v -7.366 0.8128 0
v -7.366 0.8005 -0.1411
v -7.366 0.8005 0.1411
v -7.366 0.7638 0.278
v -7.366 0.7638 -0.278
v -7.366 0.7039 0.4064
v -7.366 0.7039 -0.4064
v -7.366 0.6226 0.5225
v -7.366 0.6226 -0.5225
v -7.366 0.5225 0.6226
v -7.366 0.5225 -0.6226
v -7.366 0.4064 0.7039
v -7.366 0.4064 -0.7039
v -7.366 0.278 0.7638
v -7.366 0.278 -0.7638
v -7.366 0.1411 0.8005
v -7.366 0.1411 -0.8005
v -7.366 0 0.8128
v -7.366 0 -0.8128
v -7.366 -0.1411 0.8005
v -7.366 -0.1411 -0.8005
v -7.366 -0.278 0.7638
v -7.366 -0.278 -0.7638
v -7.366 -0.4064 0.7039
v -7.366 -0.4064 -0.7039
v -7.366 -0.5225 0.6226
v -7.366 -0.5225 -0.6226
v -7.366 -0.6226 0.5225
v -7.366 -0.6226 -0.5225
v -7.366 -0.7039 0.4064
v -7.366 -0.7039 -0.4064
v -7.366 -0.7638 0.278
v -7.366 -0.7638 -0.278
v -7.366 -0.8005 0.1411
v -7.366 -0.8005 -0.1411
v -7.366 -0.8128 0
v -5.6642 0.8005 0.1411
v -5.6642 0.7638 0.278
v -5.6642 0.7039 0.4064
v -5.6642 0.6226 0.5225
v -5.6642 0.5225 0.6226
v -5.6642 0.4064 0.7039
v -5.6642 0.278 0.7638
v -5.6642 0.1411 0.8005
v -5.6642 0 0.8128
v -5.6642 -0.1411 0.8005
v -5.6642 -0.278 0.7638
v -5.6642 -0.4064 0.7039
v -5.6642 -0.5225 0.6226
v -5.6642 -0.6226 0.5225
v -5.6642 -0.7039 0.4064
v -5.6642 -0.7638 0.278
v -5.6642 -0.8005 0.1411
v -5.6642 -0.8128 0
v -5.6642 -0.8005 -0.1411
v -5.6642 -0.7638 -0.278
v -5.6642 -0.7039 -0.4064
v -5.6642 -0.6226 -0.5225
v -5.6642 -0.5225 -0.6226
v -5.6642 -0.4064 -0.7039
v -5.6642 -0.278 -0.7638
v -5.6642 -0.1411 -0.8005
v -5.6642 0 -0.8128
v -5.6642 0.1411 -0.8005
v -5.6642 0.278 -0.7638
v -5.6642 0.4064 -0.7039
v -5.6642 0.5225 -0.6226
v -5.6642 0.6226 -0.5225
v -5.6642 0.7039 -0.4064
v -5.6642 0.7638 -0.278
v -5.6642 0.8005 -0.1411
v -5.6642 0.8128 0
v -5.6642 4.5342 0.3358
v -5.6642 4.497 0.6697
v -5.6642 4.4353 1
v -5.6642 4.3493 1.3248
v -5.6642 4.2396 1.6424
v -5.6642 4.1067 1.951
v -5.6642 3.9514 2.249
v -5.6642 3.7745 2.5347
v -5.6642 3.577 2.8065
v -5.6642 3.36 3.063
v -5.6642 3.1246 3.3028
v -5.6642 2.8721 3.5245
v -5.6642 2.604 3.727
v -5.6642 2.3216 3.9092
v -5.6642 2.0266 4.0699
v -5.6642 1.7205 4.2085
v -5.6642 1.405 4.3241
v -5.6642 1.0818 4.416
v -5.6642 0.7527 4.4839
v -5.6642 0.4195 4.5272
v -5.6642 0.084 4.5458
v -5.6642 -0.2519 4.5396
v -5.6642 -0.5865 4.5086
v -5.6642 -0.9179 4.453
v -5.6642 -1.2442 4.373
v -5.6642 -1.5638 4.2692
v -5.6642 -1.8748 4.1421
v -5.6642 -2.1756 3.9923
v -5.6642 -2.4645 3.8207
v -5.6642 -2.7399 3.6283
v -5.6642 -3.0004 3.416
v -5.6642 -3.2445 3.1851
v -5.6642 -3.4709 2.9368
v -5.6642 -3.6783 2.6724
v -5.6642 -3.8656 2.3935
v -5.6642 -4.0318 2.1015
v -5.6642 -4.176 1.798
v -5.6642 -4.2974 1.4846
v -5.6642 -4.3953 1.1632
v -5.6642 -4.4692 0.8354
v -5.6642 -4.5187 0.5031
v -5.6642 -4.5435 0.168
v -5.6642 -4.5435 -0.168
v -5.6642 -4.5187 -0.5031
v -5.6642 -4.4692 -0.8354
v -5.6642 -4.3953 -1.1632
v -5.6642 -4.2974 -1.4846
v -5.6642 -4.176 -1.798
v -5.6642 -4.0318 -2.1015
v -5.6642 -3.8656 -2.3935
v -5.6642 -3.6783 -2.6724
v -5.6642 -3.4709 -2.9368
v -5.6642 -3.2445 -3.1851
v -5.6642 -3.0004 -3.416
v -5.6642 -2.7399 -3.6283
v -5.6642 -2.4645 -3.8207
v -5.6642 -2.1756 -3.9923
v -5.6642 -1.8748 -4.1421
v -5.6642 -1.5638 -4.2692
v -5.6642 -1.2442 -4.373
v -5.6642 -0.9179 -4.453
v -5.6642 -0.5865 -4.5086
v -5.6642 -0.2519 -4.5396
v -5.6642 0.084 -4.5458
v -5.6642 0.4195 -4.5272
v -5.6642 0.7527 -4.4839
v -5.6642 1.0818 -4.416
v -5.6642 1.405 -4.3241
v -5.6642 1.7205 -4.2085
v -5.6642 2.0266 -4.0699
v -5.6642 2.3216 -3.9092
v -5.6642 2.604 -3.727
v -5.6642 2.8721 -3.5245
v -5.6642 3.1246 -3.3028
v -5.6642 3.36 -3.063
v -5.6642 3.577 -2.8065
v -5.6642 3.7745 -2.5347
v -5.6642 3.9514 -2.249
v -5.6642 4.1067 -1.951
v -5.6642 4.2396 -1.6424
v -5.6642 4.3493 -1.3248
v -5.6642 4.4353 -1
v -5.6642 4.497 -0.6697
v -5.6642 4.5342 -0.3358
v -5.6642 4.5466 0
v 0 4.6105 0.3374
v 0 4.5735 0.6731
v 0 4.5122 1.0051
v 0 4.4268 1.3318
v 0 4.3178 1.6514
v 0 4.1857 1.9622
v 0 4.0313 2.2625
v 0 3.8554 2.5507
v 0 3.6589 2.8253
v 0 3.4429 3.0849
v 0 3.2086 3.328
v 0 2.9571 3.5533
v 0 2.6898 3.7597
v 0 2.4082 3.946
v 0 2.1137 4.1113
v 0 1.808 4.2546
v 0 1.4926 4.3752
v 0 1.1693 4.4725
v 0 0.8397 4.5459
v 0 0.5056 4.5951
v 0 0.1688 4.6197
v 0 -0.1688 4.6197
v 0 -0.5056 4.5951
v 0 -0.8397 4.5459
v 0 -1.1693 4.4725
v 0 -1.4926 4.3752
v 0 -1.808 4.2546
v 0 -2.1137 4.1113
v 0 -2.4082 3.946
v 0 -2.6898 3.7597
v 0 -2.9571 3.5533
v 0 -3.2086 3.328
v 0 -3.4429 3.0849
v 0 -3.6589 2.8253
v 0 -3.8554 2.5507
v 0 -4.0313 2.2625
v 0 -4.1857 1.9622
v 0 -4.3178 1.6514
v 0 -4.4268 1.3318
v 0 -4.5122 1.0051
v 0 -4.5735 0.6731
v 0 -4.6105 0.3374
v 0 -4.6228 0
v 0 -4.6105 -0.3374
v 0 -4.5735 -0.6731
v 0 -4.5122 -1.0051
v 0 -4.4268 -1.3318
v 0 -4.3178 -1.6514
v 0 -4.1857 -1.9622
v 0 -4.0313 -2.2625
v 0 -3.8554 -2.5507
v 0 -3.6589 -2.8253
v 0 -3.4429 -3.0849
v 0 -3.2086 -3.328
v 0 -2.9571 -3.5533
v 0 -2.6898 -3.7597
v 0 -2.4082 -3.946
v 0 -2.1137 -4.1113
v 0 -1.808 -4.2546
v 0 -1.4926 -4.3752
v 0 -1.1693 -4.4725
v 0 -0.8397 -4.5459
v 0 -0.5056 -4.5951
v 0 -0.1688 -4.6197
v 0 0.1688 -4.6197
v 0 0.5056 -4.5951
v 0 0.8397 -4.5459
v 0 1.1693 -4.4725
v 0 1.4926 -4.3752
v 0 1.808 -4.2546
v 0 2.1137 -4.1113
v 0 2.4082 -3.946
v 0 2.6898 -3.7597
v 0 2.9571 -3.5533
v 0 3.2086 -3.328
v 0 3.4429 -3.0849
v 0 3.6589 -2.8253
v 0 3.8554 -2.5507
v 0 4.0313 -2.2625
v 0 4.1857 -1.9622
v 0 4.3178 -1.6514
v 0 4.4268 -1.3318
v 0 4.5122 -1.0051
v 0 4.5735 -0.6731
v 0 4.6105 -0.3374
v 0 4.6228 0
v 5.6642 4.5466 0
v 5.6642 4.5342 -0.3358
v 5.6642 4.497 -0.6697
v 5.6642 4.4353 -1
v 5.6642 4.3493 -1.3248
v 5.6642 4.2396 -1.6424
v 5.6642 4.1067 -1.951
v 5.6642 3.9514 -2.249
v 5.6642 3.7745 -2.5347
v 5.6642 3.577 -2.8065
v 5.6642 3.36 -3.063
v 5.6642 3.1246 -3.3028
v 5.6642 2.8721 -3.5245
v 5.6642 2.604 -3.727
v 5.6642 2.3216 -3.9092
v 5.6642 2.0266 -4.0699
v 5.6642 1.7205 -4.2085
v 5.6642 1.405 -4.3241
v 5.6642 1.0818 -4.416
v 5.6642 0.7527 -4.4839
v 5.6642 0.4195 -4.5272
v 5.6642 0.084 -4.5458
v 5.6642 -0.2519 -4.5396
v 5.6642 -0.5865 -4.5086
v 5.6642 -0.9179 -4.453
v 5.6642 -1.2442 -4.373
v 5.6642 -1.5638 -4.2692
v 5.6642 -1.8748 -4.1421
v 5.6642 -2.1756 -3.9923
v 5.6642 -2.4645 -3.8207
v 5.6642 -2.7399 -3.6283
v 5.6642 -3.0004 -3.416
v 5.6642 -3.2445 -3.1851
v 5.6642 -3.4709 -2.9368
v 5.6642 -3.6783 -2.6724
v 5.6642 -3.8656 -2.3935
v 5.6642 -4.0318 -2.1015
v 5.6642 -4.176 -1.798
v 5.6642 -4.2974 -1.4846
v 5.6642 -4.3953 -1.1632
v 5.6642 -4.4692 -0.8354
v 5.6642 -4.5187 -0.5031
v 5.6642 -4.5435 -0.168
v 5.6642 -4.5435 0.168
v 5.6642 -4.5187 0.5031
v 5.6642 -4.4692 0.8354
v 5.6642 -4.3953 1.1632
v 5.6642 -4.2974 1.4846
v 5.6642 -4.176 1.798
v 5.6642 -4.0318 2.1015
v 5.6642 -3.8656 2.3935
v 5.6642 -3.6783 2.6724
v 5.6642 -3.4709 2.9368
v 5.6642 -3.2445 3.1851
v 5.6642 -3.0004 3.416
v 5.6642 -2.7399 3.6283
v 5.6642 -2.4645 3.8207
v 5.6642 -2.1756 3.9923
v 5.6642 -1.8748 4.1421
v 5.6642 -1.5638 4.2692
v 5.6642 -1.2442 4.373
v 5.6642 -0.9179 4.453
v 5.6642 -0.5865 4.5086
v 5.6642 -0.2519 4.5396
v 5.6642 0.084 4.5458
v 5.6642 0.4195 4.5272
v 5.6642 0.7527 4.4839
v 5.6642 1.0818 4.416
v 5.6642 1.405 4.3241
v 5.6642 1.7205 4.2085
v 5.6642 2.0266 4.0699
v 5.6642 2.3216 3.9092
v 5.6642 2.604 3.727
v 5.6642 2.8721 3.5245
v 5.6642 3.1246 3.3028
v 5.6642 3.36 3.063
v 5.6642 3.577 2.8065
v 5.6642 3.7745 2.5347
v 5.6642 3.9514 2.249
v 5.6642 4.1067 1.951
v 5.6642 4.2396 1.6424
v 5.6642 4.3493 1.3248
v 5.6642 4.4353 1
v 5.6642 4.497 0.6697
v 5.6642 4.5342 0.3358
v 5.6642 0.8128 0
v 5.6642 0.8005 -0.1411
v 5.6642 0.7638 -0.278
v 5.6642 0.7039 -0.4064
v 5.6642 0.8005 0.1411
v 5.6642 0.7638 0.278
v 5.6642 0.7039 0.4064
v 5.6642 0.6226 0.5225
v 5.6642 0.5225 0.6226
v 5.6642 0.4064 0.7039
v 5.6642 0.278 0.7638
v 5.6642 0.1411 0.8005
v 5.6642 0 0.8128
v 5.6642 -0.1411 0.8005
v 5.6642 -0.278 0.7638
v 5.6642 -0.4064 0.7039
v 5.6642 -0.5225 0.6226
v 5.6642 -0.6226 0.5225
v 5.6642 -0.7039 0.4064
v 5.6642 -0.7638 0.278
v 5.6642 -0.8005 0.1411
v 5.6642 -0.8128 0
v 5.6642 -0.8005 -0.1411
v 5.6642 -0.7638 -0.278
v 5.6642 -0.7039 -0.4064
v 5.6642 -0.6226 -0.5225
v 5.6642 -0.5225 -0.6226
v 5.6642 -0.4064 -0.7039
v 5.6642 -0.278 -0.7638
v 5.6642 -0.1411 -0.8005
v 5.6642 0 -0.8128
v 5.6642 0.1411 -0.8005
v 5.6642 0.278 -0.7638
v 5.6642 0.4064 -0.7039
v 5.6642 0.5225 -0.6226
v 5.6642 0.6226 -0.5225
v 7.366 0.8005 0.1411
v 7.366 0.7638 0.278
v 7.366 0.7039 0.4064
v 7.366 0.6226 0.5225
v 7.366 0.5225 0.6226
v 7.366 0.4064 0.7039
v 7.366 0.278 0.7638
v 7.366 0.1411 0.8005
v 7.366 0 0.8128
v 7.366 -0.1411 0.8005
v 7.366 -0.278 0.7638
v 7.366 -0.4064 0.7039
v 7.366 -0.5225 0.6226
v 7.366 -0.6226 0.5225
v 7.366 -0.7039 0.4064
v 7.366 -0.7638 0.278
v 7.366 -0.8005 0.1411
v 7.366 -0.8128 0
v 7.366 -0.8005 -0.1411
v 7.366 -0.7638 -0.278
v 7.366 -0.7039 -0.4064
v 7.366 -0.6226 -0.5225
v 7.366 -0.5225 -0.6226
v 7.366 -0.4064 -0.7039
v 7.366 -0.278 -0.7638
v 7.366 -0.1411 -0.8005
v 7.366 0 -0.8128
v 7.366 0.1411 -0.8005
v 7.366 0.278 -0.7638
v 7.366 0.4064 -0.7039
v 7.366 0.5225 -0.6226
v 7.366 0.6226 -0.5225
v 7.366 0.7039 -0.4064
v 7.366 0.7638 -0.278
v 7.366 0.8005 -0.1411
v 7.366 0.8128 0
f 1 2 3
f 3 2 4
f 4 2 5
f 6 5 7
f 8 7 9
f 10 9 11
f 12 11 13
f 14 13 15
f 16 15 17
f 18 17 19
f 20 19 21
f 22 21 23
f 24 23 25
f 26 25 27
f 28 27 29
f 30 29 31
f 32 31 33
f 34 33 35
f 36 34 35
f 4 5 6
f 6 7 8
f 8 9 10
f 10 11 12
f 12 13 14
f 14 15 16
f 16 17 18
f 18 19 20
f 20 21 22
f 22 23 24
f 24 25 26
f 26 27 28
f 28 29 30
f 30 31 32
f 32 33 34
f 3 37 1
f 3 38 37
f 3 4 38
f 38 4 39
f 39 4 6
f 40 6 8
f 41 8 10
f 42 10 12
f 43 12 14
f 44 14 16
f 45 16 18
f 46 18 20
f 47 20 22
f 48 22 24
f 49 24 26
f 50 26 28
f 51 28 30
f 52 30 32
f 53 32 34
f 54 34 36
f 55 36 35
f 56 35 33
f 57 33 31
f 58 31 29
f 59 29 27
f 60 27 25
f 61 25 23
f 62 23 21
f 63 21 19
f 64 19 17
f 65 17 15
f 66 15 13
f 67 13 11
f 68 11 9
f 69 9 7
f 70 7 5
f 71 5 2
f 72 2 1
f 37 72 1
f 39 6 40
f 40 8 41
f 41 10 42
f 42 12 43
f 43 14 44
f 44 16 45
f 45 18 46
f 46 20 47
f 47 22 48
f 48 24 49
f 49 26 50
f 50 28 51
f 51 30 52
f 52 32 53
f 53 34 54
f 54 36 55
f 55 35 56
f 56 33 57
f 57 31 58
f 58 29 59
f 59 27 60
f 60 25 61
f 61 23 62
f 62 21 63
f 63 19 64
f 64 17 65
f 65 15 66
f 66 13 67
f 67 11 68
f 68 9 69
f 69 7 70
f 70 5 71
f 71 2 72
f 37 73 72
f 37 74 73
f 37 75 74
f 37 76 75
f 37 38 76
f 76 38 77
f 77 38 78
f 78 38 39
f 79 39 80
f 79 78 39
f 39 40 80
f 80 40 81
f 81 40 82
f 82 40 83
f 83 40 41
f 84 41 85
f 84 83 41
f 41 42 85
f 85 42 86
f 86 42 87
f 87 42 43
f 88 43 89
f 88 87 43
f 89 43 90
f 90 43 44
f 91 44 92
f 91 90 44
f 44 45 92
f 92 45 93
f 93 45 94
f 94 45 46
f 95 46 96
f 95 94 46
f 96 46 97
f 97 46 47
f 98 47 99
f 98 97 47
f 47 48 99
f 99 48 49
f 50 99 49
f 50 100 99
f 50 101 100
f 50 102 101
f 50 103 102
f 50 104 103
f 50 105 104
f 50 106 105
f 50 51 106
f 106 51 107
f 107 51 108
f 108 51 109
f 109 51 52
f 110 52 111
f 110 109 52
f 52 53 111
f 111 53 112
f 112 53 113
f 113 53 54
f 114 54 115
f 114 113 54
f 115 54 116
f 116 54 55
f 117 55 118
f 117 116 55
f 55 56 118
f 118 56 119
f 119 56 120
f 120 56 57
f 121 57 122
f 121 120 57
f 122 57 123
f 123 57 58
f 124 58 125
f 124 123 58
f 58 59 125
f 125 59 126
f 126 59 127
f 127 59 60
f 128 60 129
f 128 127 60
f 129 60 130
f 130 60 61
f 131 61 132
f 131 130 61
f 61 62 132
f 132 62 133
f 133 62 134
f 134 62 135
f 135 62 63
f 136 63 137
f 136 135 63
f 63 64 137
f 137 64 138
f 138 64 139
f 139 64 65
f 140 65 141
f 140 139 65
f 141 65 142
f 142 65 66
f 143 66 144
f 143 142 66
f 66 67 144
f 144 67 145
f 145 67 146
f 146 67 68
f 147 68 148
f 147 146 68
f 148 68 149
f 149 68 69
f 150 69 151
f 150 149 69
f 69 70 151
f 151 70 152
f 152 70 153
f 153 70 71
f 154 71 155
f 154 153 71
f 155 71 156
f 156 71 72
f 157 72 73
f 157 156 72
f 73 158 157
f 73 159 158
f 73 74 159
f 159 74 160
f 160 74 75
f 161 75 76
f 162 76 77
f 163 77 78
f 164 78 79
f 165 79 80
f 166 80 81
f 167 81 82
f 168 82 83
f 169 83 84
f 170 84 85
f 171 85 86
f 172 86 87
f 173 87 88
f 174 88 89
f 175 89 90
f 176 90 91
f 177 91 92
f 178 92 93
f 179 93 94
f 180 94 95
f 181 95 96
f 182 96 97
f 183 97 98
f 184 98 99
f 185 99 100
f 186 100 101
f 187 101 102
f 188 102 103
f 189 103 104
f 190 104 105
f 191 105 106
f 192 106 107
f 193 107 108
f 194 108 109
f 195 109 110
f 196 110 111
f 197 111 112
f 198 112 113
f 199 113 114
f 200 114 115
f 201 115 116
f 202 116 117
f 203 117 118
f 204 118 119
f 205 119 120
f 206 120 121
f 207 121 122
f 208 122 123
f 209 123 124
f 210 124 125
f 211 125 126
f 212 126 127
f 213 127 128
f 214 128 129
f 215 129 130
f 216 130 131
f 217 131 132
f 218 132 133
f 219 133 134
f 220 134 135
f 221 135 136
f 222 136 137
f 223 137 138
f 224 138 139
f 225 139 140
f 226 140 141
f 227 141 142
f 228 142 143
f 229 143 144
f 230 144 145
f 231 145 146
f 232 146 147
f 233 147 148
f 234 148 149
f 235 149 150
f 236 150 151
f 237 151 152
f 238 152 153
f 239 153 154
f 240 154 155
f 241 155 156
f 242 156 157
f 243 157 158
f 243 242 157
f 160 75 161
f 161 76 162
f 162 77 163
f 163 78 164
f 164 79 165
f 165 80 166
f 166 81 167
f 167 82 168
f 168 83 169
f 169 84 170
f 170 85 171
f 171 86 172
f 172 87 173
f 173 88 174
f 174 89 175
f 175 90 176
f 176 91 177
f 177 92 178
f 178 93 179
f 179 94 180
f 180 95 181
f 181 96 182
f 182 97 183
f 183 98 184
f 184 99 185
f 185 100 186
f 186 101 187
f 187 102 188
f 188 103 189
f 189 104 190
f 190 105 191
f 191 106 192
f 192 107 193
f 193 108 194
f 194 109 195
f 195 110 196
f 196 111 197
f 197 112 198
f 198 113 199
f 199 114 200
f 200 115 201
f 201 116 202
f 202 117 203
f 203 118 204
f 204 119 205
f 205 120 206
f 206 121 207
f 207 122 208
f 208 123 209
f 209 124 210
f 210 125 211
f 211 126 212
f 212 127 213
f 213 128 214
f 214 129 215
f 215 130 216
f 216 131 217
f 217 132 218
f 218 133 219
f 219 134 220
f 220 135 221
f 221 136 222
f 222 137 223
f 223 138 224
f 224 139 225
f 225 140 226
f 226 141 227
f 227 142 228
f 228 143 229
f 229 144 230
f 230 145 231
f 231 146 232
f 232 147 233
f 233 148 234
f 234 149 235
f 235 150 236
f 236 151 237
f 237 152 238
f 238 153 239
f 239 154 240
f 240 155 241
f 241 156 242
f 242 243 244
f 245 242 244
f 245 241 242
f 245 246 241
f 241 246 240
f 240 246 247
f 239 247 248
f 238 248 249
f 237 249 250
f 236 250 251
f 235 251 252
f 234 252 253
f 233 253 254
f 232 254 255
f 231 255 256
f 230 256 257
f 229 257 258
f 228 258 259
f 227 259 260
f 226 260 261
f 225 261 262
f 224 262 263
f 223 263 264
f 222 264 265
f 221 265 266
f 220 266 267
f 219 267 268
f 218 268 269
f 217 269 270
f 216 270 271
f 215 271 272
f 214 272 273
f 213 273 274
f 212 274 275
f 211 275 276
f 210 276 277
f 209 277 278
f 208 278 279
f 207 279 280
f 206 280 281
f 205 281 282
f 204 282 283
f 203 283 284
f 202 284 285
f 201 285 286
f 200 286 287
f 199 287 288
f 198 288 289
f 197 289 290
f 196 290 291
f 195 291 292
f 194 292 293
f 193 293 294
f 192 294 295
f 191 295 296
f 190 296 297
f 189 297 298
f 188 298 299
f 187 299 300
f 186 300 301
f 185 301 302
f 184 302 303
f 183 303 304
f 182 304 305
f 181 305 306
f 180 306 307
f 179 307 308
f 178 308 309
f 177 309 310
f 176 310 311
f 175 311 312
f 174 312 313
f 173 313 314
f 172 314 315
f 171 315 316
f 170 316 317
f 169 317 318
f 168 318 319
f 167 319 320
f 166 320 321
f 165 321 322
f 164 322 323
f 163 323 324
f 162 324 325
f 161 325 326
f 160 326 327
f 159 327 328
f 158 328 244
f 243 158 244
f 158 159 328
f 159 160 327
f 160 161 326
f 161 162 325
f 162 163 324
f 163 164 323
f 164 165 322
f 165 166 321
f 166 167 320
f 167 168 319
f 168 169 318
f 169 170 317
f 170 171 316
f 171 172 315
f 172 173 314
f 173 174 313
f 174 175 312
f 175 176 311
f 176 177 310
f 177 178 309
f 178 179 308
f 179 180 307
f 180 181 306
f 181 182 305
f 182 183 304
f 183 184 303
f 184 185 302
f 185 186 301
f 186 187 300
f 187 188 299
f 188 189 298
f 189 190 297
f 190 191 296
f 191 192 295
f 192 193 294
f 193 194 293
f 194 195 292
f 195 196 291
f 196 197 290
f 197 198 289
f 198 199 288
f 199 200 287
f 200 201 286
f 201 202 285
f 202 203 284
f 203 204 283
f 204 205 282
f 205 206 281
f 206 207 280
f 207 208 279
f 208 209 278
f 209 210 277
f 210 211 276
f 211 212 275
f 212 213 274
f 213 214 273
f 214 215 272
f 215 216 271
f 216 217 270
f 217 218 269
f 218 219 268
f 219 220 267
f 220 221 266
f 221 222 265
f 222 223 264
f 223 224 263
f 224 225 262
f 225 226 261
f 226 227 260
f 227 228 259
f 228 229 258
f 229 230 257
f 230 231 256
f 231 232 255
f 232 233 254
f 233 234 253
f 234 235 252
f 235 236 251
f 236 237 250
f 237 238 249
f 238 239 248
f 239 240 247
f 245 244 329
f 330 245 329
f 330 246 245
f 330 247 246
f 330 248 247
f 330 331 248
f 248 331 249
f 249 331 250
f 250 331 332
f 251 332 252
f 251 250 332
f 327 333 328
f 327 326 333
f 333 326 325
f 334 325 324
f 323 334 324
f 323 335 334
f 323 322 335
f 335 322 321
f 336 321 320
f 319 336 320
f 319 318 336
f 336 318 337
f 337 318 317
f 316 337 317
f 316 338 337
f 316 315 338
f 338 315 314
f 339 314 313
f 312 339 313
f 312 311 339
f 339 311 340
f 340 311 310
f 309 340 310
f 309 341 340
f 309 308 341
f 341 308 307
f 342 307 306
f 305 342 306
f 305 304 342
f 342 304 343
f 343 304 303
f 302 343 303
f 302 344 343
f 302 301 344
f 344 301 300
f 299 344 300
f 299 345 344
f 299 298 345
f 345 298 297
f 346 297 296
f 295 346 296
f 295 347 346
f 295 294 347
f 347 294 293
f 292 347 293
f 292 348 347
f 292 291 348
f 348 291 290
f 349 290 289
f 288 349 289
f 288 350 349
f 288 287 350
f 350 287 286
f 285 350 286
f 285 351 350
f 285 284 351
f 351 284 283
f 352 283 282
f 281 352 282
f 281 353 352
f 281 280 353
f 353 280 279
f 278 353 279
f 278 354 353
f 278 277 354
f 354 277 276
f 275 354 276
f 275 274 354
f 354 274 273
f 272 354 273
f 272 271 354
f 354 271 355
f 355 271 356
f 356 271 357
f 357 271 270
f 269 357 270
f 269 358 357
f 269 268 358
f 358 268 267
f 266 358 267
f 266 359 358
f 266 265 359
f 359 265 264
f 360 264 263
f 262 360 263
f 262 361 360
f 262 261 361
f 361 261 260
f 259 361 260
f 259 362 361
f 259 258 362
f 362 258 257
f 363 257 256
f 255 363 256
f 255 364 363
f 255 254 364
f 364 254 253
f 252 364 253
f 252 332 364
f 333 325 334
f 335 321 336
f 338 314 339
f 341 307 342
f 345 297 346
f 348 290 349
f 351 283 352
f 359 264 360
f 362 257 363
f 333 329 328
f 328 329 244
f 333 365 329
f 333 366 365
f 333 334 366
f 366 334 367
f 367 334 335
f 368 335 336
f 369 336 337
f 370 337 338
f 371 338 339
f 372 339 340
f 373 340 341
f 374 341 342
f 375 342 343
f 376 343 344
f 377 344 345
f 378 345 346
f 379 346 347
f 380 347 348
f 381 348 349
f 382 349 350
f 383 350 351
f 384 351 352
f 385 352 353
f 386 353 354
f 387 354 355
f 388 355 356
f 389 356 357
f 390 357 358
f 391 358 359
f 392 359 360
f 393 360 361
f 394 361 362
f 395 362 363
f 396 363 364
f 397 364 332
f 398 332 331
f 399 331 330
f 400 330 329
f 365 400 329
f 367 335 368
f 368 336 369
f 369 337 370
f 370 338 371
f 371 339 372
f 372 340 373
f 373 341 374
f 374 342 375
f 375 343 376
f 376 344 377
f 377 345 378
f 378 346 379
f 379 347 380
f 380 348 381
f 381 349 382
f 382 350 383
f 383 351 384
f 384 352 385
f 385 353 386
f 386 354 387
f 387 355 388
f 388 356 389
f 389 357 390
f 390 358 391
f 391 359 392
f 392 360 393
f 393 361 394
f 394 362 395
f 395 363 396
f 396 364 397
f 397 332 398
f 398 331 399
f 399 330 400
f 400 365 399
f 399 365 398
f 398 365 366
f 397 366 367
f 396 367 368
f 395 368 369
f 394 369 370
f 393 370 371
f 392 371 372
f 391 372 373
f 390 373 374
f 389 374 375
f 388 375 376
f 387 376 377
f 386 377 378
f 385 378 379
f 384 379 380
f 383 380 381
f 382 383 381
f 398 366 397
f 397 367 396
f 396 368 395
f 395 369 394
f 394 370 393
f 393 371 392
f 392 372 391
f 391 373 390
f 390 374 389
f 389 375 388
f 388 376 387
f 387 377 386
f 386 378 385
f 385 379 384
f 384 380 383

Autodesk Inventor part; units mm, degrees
ref_plane "YZ Plane" through (0, 0, 0) normal (1, 0, 0) x (0, 1, 0)
ref_plane "XZ Plane" through (0, 0, 0) normal (0, 1, 0) x (-1, 0, 0)
ref_plane "XY Plane" through (0, 0, 0) normal (0, 0, 1) x (1, 0, 0)
sketch "Sketch1" plane through (0, 0, 0) normal (0, 0, 1) x (1, 0, 0)
  line L0 (-7.366, 0) -> (7.366, 0)
  line L1 (-7.366, 0) -> (-7.366, 0.8128)
  line L2 (-7.366, 0.8128) -> (-5.6642, 0.8128)
  line L3 (-5.6642, 0.8128) -> (-5.6642, 4.5466)
  line L4 (-5.6642, 4.5466) -> (0, 4.6228)
  line L5 (0, 4.6228) -> (5.6642, 4.5466)
  line L6 (5.6642, 4.5466) -> (5.6642, 0.8128)
  line L7 (5.6642, 0.8128) -> (7.366, 0.8128)
  line L8 (7.366, 0.8128) -> (7.366, 0)
  point P0 (0, 0)
  point P1 (0, 0)
  dimension "d0" = 14.732
  dimension "d1" = 0.8128
  dimension "d2" = 4.6228
  dimension "d3" = 4.5466
  dimension "d4" = 11.3284
  dimension "d5" = 1.7018
  dimension "d6" = 1.7018
revolve "Revolution1" add sketch "Sketch1" angle 360 about axis through (-7.366, 0, 0) along (1, 0, 0)
equation "\"d5\" = d6"
properties part number "Flexiwheel Roller" material "PPS Plastic"
